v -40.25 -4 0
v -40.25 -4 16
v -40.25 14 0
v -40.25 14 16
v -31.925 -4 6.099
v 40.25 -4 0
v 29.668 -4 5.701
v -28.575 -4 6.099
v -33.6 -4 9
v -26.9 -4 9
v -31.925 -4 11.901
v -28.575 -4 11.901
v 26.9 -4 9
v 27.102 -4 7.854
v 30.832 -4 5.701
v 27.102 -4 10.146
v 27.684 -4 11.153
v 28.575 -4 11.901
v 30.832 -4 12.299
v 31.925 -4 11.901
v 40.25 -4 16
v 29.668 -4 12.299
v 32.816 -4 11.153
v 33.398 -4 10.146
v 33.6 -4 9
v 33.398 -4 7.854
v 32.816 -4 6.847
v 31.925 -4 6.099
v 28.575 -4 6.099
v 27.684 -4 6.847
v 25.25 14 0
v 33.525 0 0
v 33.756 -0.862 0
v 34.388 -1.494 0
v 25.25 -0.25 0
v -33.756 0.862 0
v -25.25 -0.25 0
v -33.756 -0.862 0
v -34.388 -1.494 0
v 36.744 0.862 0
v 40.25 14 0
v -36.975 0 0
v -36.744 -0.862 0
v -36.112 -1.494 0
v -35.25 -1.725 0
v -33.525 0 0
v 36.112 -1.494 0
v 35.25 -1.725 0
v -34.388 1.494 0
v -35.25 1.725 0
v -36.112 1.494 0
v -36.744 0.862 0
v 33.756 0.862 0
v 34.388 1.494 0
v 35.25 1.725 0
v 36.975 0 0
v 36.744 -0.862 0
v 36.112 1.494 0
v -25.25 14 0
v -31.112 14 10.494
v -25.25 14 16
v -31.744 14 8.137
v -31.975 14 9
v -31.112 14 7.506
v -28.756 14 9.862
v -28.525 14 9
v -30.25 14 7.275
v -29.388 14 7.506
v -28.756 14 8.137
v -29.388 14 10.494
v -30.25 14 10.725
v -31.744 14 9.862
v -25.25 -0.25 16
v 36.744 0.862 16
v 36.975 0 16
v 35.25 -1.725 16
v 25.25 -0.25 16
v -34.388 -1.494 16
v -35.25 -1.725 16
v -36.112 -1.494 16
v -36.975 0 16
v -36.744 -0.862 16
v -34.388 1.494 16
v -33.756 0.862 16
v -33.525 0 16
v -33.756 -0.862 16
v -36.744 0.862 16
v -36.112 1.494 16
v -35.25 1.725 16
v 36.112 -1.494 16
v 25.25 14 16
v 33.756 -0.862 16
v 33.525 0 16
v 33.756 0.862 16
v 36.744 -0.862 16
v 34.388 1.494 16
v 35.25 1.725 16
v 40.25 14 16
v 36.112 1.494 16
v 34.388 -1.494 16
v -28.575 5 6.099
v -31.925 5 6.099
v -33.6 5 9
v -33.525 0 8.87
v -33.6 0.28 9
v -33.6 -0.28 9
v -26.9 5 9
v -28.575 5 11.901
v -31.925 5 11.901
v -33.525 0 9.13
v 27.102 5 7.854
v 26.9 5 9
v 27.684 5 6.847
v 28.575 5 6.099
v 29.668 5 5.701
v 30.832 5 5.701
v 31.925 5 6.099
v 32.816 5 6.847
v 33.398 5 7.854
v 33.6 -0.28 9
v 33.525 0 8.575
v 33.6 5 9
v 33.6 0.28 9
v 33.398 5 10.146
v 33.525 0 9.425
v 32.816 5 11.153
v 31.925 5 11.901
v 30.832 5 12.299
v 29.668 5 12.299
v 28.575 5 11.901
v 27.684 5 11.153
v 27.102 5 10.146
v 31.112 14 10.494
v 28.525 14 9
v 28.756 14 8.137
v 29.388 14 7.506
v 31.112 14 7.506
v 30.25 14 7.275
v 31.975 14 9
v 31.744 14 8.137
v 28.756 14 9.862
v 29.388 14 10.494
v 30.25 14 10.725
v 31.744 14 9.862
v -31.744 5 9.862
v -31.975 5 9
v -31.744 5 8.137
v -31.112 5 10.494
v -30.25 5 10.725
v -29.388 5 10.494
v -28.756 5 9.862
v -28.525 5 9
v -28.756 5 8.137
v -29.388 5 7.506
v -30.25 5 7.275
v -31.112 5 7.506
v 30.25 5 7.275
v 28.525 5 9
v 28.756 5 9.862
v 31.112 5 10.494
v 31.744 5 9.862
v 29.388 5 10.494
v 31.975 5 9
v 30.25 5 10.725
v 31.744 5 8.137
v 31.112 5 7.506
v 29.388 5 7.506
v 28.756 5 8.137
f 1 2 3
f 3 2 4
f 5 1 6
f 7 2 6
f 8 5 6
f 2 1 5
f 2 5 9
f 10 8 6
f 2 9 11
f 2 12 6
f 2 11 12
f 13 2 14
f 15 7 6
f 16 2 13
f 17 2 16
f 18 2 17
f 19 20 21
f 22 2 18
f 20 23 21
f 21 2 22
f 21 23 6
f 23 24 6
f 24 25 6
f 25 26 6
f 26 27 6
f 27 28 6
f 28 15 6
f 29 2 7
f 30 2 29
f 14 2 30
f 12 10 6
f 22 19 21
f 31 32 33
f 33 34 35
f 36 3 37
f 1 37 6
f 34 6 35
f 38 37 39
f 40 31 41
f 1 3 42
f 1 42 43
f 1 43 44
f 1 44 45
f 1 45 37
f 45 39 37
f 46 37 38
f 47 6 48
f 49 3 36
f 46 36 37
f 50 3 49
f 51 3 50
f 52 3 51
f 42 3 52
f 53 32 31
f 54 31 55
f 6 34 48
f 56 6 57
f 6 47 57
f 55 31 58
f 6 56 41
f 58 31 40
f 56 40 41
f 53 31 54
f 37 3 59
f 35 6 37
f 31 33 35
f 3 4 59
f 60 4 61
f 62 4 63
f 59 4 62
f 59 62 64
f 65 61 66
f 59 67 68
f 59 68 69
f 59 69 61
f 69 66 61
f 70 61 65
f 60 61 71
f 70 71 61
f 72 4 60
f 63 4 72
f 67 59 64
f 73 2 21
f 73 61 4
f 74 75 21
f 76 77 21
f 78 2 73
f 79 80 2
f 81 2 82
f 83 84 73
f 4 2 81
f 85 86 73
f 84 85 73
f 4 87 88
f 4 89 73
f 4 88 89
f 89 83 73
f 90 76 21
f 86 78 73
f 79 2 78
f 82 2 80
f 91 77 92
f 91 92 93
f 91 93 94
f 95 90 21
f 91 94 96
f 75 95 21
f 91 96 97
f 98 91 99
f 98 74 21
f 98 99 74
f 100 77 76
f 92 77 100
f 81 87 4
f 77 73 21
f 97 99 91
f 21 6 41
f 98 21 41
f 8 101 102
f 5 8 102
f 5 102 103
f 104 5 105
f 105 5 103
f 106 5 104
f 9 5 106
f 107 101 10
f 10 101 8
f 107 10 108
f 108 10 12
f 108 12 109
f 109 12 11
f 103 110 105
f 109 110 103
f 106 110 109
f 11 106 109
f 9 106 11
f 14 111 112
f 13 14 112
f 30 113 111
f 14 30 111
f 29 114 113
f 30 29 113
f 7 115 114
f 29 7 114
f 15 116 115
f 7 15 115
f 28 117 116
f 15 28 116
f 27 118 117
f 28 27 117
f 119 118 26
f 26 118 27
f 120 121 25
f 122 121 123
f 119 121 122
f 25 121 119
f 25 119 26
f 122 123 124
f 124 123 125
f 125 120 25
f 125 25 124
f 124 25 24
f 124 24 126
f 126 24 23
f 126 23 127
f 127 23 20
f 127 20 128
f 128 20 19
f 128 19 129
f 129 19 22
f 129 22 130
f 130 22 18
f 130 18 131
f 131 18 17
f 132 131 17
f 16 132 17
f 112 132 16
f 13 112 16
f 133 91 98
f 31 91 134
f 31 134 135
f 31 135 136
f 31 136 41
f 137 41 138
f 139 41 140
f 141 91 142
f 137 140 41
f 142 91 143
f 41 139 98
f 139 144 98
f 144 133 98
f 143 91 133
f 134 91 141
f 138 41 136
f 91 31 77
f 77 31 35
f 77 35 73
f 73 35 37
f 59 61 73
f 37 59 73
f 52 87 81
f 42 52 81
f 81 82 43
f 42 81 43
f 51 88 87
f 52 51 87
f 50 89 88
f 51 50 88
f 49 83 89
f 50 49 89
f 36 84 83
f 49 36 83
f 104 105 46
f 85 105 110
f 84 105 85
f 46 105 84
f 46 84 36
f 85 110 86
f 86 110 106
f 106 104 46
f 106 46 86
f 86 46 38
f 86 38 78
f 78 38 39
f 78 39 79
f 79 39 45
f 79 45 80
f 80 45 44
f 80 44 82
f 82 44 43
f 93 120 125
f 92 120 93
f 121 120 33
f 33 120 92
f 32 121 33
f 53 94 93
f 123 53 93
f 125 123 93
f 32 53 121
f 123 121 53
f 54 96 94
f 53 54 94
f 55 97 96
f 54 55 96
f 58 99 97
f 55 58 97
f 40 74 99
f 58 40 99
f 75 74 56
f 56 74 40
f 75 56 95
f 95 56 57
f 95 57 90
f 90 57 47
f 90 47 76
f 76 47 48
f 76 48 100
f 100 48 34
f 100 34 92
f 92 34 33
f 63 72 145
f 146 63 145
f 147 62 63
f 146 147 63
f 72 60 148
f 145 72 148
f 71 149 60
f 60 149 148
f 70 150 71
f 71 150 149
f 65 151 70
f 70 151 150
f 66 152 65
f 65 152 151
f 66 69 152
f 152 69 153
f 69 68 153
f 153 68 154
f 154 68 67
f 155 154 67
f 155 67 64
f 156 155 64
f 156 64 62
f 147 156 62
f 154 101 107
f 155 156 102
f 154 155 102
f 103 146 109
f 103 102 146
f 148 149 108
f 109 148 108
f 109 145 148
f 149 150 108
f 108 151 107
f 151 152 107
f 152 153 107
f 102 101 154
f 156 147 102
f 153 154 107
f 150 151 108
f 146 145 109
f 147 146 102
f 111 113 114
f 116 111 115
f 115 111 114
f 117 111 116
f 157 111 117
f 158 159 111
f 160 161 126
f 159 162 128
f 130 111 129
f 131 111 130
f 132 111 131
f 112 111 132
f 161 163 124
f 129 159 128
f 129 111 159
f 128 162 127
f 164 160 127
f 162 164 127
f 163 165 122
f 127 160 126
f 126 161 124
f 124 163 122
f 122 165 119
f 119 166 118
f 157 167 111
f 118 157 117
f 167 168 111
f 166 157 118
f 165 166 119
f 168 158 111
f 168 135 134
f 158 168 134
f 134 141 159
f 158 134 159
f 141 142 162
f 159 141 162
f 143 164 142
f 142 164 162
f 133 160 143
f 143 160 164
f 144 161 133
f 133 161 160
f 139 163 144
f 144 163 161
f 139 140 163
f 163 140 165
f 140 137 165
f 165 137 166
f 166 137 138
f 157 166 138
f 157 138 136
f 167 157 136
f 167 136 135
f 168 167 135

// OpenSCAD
// file: configuration.scad
// Increase this if your slicer or printer make holes too tight.
extra_radius = 0.1;

// OD = outside diameter, corner to corner.
m3_nut_od = 6.1;
m3_nut_radius = m3_nut_od/2 + 0.2 + extra_radius;

// Major diameter of metric 3mm thread.
m3_major = 2.85;
m3_radius = m3_major/2 + extra_radius;
m3_wide_radius = m3_major/2 + extra_radius + 0.2;

// NEMA17 stepper motors.
motor_shaft_diameter = 5;
motor_shaft_radius = motor_shaft_diameter/2 + extra_radius;

// Frame brackets.
thickness = 3.6;
// main file
include <configuration.scad>;

space = 15;  // Between horizontal OpenBeam pieces.

power_supply_height = 30.5;
power_supply_width = 50.5;

module power_supply() {
  difference() {
    translate([0, 5, 8])
      cube([power_supply_width+30, 18, 16],
        center=true);
    // Power supply body.
    translate([0, 7.5+space/2, 0])
      cube([power_supply_width, power_supply_height, 100], center=true);
    // Screw holes.
    for (x = [-1, 1]) {
      translate([x*(power_supply_width/2+10), 0, 9])
        cylinder(r=m3_wide_radius, h=40, center=true, $fn=12);
      translate([x*(power_supply_width/2+5), 20, 9]) rotate([90, 0, 0])
        cylinder(r=m3_wide_radius, h=40, center=true, $fn=12);
      translate([x*(power_supply_width/2+5), 5, 9]) rotate([90, 0, 0])
        cylinder(r=m3_nut_radius, h=40, $fn=12+x*6);
    }
  }
}

power_supply();
% translate([0, space+15, 0]) rotate([0, 0, 180]) power_supply();
